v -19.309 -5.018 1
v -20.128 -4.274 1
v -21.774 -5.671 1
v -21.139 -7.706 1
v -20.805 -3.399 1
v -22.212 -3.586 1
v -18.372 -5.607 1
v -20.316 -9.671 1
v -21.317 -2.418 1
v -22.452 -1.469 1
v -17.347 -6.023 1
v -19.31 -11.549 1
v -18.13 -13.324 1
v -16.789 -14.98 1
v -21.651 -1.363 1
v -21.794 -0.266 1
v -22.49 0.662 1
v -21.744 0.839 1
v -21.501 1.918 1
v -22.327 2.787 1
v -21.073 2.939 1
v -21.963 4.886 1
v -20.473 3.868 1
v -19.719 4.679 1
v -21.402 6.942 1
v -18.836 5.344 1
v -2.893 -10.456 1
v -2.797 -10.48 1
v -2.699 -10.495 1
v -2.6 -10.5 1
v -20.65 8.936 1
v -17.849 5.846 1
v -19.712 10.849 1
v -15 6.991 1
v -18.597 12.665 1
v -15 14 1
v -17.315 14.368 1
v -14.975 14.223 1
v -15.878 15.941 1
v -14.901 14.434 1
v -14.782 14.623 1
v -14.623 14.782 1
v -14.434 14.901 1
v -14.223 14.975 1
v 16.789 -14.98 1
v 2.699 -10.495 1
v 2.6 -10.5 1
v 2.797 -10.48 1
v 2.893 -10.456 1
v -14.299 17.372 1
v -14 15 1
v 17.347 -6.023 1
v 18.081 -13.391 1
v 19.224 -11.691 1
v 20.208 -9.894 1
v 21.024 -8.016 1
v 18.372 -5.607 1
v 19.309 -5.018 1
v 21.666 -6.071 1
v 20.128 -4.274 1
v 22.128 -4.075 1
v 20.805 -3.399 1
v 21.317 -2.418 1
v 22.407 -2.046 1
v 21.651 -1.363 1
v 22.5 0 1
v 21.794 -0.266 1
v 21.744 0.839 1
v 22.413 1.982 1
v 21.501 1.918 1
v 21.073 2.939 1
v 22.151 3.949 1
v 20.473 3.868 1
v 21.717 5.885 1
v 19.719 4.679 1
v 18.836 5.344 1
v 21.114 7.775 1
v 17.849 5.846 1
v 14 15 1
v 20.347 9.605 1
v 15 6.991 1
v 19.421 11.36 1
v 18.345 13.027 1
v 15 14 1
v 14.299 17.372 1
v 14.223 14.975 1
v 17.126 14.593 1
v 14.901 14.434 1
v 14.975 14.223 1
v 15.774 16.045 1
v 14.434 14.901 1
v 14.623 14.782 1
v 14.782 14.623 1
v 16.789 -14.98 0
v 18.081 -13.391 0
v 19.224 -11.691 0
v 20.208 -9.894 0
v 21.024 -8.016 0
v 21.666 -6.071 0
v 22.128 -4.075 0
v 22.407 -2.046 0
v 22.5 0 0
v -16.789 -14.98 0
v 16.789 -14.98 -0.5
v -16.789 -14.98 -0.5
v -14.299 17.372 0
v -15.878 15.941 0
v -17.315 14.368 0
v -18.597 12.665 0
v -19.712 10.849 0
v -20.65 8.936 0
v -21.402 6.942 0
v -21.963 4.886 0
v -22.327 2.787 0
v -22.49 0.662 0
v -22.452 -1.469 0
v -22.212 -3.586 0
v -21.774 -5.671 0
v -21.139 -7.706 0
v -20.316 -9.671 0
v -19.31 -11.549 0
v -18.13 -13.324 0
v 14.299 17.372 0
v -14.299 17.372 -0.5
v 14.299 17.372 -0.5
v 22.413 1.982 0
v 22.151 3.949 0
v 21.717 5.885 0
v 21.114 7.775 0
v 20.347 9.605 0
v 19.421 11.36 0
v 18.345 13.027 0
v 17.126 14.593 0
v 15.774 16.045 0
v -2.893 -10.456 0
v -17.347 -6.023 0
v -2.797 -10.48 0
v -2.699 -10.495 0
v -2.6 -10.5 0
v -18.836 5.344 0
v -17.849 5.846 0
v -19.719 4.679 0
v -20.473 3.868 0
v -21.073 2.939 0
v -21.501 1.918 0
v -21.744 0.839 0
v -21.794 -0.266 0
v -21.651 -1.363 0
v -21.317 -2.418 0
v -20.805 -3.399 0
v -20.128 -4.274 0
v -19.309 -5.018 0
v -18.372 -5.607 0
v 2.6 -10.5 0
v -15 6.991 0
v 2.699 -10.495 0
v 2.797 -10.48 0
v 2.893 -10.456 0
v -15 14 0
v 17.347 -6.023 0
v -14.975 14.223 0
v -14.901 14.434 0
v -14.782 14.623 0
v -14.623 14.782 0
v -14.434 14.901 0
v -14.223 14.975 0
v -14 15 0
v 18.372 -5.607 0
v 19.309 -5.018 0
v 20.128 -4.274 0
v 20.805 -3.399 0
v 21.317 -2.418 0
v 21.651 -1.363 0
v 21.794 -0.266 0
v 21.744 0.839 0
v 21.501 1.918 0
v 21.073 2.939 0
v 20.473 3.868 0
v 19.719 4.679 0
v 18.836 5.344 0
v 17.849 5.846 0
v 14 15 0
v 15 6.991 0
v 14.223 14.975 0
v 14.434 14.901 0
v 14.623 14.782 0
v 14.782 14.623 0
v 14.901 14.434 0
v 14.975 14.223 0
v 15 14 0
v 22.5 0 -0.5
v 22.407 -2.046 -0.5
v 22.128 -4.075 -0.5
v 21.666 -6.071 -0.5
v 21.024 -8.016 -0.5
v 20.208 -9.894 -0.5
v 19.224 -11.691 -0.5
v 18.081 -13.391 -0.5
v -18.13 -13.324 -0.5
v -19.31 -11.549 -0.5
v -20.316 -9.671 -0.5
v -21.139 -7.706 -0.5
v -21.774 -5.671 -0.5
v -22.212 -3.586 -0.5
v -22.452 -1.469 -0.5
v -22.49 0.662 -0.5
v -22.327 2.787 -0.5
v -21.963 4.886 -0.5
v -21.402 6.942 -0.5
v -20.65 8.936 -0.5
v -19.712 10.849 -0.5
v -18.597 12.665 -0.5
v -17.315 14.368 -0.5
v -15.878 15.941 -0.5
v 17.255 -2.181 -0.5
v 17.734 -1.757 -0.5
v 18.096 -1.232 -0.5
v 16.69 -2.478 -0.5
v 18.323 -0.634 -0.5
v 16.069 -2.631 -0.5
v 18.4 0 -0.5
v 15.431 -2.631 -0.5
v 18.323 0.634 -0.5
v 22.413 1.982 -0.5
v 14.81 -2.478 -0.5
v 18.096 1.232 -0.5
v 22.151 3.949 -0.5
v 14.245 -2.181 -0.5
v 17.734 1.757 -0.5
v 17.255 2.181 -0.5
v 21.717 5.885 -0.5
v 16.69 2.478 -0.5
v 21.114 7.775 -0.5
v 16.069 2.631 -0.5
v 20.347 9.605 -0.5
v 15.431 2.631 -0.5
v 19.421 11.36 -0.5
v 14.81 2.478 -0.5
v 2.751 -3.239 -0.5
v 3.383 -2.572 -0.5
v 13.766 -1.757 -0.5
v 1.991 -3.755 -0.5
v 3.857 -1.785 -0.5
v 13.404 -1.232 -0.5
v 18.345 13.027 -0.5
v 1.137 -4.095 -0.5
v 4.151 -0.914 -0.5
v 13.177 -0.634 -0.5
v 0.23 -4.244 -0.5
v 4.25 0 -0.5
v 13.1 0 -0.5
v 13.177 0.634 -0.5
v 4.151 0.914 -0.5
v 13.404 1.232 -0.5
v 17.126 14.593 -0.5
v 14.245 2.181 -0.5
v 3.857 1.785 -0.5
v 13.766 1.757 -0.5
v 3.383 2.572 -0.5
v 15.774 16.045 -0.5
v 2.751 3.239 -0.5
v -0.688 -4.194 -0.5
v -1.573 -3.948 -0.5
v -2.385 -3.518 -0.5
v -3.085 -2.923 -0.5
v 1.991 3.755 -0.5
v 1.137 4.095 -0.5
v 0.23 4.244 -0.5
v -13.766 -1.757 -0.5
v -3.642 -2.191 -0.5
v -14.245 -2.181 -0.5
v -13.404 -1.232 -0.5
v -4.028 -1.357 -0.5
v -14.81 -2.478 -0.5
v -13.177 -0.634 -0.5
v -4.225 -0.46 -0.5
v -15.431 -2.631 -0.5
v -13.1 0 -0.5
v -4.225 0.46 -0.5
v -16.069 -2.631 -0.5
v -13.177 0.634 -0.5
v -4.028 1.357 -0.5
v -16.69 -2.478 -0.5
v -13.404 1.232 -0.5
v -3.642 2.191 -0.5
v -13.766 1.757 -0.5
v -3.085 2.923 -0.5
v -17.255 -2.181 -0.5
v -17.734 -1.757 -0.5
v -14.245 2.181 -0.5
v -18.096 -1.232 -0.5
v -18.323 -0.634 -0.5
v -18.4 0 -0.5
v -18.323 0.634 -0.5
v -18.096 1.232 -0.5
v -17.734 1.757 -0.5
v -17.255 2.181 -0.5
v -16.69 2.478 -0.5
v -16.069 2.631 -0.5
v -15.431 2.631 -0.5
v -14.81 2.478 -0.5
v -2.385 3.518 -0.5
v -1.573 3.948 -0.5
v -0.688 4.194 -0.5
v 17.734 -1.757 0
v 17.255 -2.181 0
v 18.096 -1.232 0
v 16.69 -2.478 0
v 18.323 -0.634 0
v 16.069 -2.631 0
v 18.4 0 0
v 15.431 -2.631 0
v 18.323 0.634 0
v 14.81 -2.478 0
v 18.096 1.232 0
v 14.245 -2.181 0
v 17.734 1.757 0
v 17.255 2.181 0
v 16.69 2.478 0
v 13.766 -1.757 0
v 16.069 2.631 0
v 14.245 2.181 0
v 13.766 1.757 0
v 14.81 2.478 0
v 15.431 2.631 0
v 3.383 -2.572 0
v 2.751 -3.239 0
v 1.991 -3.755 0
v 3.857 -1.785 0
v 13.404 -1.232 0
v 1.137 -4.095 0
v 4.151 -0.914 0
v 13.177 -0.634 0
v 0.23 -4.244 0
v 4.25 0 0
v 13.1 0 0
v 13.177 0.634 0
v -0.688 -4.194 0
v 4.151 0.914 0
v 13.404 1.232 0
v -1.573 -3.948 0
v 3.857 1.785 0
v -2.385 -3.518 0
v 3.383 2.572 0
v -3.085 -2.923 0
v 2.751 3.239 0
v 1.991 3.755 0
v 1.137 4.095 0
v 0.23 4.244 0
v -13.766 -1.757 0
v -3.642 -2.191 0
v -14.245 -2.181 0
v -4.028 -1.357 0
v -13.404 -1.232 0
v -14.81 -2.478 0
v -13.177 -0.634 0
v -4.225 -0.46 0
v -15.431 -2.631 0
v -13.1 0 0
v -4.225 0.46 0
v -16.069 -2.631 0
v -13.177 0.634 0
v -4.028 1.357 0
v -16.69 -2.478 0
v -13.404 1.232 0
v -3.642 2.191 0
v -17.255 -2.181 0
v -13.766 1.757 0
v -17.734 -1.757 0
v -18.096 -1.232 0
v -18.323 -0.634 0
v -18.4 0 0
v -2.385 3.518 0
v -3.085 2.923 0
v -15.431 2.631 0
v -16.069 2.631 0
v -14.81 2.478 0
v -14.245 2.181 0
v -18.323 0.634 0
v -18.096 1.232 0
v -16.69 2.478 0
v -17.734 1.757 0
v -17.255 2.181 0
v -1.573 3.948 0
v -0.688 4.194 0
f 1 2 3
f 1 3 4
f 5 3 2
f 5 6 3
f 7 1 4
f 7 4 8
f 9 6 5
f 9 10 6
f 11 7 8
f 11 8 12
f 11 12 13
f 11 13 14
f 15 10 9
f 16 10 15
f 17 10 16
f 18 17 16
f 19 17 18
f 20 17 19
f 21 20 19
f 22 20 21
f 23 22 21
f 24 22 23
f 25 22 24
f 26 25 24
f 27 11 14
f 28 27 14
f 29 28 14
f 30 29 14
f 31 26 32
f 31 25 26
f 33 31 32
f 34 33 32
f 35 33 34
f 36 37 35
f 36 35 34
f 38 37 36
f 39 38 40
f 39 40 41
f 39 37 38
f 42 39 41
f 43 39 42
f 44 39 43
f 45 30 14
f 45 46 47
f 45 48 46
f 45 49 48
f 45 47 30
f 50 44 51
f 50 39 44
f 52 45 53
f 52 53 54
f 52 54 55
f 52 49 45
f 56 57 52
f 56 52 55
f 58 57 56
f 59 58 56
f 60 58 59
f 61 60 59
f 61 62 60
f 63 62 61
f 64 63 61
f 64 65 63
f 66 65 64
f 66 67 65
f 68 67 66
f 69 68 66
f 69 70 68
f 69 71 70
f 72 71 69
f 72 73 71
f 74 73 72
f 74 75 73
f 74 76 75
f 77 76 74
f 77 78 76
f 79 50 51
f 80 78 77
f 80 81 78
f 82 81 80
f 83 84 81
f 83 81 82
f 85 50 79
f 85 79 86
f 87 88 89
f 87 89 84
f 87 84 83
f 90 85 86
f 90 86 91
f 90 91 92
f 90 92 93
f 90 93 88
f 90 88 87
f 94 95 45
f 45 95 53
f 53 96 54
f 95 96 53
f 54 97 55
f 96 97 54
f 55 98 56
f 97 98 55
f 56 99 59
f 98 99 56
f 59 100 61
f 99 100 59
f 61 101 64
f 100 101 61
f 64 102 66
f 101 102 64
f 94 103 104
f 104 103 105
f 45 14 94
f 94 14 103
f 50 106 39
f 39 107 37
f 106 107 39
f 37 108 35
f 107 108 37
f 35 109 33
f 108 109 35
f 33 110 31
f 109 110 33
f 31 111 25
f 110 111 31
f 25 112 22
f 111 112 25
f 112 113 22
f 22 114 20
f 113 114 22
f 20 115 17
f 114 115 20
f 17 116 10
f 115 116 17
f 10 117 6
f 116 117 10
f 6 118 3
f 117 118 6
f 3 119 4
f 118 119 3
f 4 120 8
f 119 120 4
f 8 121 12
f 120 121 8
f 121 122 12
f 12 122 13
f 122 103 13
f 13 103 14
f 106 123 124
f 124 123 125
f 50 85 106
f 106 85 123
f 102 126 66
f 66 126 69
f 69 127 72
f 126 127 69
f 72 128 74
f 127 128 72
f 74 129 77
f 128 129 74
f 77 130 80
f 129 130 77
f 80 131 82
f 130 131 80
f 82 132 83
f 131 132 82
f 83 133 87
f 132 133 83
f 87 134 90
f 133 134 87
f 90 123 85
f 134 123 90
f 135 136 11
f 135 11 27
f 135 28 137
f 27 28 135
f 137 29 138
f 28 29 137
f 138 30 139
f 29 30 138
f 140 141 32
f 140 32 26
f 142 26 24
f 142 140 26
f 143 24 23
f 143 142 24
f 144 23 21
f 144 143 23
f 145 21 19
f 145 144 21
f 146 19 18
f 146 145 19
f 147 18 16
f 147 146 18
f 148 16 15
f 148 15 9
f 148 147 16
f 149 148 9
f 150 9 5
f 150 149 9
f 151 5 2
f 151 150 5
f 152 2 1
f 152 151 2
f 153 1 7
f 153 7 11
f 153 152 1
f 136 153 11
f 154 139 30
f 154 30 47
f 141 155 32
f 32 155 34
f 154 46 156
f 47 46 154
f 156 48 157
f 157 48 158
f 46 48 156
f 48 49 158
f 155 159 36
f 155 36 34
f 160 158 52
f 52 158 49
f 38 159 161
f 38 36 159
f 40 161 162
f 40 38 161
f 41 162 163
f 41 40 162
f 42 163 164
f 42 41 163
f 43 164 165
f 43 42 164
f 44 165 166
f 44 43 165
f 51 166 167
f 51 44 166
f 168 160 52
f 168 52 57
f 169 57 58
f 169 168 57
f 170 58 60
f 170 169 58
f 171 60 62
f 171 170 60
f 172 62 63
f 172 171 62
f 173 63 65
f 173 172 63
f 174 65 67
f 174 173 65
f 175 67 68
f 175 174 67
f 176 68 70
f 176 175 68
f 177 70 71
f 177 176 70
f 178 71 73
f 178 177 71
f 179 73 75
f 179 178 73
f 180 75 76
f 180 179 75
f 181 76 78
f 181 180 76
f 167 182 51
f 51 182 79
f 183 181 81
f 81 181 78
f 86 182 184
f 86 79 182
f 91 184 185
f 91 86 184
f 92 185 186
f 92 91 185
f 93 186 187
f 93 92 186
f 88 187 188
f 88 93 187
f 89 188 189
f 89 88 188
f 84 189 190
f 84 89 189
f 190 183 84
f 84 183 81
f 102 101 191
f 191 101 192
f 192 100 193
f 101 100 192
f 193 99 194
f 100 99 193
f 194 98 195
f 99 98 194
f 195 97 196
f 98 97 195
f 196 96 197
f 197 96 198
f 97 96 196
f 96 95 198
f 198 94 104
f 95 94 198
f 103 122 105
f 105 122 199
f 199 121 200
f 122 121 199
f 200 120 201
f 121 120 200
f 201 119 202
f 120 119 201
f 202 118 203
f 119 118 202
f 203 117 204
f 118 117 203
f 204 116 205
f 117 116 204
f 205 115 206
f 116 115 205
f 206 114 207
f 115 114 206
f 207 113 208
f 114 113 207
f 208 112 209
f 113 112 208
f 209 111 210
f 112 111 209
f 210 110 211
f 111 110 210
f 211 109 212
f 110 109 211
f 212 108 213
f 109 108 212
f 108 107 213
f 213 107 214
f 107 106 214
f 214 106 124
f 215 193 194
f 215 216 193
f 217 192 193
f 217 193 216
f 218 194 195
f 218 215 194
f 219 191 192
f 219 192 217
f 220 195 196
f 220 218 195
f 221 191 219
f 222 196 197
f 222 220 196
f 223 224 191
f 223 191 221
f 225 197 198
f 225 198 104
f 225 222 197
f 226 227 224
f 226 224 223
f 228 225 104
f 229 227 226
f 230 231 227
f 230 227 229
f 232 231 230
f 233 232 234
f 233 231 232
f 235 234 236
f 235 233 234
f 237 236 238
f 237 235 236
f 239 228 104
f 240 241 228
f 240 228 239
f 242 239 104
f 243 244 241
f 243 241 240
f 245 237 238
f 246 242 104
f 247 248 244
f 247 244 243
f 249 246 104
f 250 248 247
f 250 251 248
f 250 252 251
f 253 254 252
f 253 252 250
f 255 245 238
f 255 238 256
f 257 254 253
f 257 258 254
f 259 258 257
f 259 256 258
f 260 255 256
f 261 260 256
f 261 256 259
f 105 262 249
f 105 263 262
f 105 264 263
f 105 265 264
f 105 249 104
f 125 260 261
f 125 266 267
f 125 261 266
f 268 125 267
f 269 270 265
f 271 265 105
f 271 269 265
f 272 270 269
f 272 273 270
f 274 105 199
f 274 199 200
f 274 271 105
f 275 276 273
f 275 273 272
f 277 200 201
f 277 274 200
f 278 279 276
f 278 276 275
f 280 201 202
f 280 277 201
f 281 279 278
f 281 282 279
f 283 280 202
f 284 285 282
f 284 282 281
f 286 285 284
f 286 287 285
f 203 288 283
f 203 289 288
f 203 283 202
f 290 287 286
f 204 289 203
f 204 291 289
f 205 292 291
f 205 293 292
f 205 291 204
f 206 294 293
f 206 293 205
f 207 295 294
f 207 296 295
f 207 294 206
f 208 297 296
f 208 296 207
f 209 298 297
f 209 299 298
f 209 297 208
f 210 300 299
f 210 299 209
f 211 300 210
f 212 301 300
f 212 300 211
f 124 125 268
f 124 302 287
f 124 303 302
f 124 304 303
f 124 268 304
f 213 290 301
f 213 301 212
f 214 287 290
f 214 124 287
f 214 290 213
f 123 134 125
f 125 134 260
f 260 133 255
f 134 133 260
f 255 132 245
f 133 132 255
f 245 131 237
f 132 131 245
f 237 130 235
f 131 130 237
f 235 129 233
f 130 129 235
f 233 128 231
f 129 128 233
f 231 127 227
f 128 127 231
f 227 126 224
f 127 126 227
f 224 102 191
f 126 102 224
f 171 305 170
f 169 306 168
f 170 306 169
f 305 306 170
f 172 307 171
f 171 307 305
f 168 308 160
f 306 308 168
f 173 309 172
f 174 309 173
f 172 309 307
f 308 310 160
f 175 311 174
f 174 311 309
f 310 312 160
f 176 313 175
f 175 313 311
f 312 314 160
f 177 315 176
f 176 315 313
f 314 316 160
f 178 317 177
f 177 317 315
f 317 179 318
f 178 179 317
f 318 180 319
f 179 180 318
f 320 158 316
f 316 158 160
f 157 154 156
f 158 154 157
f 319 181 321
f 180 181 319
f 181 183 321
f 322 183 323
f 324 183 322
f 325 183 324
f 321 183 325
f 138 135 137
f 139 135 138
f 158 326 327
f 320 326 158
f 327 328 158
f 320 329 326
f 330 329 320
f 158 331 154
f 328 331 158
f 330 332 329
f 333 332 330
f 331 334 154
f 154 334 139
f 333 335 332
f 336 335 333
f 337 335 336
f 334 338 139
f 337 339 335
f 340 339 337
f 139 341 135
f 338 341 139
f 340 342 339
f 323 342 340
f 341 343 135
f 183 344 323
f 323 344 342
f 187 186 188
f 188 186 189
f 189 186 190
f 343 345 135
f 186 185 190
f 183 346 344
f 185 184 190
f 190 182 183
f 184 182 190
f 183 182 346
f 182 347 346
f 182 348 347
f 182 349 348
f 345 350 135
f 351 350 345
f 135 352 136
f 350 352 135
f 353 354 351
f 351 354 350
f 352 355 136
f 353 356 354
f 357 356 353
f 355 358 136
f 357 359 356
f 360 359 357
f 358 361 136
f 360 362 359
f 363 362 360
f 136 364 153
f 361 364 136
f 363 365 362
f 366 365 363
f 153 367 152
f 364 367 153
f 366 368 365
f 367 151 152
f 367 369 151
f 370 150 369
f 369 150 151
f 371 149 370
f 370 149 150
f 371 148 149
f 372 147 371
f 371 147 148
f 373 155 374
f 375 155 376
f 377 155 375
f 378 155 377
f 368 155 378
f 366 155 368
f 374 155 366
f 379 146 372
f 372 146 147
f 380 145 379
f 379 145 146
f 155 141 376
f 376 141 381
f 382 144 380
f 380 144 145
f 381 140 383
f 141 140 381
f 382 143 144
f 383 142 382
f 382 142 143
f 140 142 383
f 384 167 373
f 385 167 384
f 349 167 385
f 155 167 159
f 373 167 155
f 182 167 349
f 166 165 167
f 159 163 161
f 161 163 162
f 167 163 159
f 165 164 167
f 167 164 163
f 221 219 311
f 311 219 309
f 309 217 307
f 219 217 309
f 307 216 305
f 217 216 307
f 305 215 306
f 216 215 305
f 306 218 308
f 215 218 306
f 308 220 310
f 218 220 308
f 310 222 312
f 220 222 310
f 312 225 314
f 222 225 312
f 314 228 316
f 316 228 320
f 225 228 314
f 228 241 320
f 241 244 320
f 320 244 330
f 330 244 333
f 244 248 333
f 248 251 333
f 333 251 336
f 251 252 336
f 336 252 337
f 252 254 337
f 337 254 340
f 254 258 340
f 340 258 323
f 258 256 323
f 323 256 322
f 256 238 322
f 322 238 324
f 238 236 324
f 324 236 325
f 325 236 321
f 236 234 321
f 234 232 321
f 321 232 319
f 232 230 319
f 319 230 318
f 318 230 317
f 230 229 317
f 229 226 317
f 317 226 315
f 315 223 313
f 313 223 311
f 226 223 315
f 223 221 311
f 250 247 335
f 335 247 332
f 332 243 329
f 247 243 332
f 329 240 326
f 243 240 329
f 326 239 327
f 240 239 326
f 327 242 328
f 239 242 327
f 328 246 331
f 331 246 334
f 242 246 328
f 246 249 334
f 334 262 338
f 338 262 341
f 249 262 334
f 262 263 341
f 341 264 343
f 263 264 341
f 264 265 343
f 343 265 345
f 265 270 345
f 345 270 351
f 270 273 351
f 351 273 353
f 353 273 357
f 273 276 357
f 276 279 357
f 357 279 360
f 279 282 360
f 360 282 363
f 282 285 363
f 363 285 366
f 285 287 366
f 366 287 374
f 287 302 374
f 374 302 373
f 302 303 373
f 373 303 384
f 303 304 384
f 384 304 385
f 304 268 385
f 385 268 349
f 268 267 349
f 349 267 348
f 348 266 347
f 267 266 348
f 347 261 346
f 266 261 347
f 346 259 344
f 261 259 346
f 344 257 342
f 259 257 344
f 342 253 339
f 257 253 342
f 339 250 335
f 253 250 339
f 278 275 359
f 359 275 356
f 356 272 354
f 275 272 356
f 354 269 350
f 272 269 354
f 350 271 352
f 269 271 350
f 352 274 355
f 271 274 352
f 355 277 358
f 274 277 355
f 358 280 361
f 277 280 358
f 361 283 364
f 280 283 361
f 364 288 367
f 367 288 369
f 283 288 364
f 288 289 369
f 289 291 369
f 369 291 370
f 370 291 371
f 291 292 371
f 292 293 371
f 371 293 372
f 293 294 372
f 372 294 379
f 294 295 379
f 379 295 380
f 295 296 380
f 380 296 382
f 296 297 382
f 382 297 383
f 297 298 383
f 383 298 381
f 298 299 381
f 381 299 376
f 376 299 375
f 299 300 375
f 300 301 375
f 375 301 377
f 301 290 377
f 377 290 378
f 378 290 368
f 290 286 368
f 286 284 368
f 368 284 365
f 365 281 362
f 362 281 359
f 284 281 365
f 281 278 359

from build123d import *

# Parameters (mm, degrees)
SKETCH_R        = 22.5
PAD_DEPTH       = 1
SKETCH001_R     = 22.5
PAD001_DEPTH    = 0.5
SKETCH002_R     = 4.25
SKETCH002_R_2   = 2.65
POCKET_DEPTH    = 1.501
FILLET_R        = 1
FILLET001_R     = 1
POCKET001_DEPTH = 5


with BuildPart() as part:
    # Sketch → Pad (new body)
    with BuildSketch(Plane.XY):
        Circle(SKETCH_R)
        with BuildLine():
            ThreePointArc((17.347253, -6.023093), (21.794374, -0.266197), (17.849197, 5.84562))
            Line((15, 6.990635), (17.849197, 5.84562))
            Line((15, 15), (15, 6.990635))
            Line((-15, 15), (15, 15))
            Line((-15, 15), (-15, 6.990635))
            Line((-17.849197, 5.84562), (-15, 6.990635))
            ThreePointArc((-17.849197, 5.84562), (-21.794374, -0.266197), (-17.347253, -6.023093))
            Line((-17.347253, -6.023093), (-2.75, -10.5))
            Line((-2.75, -10.5), (2.75, -10.5))
            Line((17.347253, -6.023093), (2.75, -10.5))
        make_face(mode=Mode.SUBTRACT)
    extrude(amount=PAD_DEPTH)

    # Sketch001 (on Face12 of Pad) → Pad001 (join)
    with BuildSketch(Plane(origin=(0, 0, 0), x_dir=(1, 0, 0), z_dir=(0, 0, -1))):
        Circle(SKETCH001_R)
    extrude(amount=PAD001_DEPTH)

    # Sketch002 (on Face4 of Pad001) → Pocket (cut, through all)
    with BuildSketch(Plane(origin=(0, 0, -0.5), x_dir=(1, 0, 0), z_dir=(0, 0, -1))):
        Circle(SKETCH002_R)
        with Locations((-15.75, 0)):
            Circle(SKETCH002_R_2)
        with Locations((15.75, 0)):
            Circle(SKETCH002_R_2)
    extrude(amount=-POCKET_DEPTH, mode=Mode.SUBTRACT)

    # Fillet
    fillet_edges = [part.edges().sort_by_distance(p)[0] for p in [
        (15, 15, 0.5),
        (-15, 15, 0.5),
    ]]
    fillet(fillet_edges, radius=FILLET_R)

    # Fillet001
    fillet001_edges = [part.edges().sort_by_distance(p)[0] for p in [
        (-2.75, -10.5, 0.5),
        (2.75, -10.5, 0.5),
    ]]
    fillet(fillet001_edges, radius=FILLET001_R)

    # Sketch003 (on Face1 of Fillet001) → Pocket001 (cut)
    with BuildSketch(Plane.XY.offset(1)):
        with BuildLine():
            Line((-14.299143, 17.371946), (14.299143, 17.371946))
            ThreePointArc((14.299143, 17.371946), (0, 22.5), (-14.299143, 17.371946))
        make_face()
        with BuildLine():
            Line((16.788655, -14.979688), (-16.788655, -14.979688))
            ThreePointArc((-16.788655, -14.979688), (0, -22.5), (16.788655, -14.979688))
        make_face()
    extrude(amount=-POCKET001_DEPTH, mode=Mode.SUBTRACT)


solid = part.part
